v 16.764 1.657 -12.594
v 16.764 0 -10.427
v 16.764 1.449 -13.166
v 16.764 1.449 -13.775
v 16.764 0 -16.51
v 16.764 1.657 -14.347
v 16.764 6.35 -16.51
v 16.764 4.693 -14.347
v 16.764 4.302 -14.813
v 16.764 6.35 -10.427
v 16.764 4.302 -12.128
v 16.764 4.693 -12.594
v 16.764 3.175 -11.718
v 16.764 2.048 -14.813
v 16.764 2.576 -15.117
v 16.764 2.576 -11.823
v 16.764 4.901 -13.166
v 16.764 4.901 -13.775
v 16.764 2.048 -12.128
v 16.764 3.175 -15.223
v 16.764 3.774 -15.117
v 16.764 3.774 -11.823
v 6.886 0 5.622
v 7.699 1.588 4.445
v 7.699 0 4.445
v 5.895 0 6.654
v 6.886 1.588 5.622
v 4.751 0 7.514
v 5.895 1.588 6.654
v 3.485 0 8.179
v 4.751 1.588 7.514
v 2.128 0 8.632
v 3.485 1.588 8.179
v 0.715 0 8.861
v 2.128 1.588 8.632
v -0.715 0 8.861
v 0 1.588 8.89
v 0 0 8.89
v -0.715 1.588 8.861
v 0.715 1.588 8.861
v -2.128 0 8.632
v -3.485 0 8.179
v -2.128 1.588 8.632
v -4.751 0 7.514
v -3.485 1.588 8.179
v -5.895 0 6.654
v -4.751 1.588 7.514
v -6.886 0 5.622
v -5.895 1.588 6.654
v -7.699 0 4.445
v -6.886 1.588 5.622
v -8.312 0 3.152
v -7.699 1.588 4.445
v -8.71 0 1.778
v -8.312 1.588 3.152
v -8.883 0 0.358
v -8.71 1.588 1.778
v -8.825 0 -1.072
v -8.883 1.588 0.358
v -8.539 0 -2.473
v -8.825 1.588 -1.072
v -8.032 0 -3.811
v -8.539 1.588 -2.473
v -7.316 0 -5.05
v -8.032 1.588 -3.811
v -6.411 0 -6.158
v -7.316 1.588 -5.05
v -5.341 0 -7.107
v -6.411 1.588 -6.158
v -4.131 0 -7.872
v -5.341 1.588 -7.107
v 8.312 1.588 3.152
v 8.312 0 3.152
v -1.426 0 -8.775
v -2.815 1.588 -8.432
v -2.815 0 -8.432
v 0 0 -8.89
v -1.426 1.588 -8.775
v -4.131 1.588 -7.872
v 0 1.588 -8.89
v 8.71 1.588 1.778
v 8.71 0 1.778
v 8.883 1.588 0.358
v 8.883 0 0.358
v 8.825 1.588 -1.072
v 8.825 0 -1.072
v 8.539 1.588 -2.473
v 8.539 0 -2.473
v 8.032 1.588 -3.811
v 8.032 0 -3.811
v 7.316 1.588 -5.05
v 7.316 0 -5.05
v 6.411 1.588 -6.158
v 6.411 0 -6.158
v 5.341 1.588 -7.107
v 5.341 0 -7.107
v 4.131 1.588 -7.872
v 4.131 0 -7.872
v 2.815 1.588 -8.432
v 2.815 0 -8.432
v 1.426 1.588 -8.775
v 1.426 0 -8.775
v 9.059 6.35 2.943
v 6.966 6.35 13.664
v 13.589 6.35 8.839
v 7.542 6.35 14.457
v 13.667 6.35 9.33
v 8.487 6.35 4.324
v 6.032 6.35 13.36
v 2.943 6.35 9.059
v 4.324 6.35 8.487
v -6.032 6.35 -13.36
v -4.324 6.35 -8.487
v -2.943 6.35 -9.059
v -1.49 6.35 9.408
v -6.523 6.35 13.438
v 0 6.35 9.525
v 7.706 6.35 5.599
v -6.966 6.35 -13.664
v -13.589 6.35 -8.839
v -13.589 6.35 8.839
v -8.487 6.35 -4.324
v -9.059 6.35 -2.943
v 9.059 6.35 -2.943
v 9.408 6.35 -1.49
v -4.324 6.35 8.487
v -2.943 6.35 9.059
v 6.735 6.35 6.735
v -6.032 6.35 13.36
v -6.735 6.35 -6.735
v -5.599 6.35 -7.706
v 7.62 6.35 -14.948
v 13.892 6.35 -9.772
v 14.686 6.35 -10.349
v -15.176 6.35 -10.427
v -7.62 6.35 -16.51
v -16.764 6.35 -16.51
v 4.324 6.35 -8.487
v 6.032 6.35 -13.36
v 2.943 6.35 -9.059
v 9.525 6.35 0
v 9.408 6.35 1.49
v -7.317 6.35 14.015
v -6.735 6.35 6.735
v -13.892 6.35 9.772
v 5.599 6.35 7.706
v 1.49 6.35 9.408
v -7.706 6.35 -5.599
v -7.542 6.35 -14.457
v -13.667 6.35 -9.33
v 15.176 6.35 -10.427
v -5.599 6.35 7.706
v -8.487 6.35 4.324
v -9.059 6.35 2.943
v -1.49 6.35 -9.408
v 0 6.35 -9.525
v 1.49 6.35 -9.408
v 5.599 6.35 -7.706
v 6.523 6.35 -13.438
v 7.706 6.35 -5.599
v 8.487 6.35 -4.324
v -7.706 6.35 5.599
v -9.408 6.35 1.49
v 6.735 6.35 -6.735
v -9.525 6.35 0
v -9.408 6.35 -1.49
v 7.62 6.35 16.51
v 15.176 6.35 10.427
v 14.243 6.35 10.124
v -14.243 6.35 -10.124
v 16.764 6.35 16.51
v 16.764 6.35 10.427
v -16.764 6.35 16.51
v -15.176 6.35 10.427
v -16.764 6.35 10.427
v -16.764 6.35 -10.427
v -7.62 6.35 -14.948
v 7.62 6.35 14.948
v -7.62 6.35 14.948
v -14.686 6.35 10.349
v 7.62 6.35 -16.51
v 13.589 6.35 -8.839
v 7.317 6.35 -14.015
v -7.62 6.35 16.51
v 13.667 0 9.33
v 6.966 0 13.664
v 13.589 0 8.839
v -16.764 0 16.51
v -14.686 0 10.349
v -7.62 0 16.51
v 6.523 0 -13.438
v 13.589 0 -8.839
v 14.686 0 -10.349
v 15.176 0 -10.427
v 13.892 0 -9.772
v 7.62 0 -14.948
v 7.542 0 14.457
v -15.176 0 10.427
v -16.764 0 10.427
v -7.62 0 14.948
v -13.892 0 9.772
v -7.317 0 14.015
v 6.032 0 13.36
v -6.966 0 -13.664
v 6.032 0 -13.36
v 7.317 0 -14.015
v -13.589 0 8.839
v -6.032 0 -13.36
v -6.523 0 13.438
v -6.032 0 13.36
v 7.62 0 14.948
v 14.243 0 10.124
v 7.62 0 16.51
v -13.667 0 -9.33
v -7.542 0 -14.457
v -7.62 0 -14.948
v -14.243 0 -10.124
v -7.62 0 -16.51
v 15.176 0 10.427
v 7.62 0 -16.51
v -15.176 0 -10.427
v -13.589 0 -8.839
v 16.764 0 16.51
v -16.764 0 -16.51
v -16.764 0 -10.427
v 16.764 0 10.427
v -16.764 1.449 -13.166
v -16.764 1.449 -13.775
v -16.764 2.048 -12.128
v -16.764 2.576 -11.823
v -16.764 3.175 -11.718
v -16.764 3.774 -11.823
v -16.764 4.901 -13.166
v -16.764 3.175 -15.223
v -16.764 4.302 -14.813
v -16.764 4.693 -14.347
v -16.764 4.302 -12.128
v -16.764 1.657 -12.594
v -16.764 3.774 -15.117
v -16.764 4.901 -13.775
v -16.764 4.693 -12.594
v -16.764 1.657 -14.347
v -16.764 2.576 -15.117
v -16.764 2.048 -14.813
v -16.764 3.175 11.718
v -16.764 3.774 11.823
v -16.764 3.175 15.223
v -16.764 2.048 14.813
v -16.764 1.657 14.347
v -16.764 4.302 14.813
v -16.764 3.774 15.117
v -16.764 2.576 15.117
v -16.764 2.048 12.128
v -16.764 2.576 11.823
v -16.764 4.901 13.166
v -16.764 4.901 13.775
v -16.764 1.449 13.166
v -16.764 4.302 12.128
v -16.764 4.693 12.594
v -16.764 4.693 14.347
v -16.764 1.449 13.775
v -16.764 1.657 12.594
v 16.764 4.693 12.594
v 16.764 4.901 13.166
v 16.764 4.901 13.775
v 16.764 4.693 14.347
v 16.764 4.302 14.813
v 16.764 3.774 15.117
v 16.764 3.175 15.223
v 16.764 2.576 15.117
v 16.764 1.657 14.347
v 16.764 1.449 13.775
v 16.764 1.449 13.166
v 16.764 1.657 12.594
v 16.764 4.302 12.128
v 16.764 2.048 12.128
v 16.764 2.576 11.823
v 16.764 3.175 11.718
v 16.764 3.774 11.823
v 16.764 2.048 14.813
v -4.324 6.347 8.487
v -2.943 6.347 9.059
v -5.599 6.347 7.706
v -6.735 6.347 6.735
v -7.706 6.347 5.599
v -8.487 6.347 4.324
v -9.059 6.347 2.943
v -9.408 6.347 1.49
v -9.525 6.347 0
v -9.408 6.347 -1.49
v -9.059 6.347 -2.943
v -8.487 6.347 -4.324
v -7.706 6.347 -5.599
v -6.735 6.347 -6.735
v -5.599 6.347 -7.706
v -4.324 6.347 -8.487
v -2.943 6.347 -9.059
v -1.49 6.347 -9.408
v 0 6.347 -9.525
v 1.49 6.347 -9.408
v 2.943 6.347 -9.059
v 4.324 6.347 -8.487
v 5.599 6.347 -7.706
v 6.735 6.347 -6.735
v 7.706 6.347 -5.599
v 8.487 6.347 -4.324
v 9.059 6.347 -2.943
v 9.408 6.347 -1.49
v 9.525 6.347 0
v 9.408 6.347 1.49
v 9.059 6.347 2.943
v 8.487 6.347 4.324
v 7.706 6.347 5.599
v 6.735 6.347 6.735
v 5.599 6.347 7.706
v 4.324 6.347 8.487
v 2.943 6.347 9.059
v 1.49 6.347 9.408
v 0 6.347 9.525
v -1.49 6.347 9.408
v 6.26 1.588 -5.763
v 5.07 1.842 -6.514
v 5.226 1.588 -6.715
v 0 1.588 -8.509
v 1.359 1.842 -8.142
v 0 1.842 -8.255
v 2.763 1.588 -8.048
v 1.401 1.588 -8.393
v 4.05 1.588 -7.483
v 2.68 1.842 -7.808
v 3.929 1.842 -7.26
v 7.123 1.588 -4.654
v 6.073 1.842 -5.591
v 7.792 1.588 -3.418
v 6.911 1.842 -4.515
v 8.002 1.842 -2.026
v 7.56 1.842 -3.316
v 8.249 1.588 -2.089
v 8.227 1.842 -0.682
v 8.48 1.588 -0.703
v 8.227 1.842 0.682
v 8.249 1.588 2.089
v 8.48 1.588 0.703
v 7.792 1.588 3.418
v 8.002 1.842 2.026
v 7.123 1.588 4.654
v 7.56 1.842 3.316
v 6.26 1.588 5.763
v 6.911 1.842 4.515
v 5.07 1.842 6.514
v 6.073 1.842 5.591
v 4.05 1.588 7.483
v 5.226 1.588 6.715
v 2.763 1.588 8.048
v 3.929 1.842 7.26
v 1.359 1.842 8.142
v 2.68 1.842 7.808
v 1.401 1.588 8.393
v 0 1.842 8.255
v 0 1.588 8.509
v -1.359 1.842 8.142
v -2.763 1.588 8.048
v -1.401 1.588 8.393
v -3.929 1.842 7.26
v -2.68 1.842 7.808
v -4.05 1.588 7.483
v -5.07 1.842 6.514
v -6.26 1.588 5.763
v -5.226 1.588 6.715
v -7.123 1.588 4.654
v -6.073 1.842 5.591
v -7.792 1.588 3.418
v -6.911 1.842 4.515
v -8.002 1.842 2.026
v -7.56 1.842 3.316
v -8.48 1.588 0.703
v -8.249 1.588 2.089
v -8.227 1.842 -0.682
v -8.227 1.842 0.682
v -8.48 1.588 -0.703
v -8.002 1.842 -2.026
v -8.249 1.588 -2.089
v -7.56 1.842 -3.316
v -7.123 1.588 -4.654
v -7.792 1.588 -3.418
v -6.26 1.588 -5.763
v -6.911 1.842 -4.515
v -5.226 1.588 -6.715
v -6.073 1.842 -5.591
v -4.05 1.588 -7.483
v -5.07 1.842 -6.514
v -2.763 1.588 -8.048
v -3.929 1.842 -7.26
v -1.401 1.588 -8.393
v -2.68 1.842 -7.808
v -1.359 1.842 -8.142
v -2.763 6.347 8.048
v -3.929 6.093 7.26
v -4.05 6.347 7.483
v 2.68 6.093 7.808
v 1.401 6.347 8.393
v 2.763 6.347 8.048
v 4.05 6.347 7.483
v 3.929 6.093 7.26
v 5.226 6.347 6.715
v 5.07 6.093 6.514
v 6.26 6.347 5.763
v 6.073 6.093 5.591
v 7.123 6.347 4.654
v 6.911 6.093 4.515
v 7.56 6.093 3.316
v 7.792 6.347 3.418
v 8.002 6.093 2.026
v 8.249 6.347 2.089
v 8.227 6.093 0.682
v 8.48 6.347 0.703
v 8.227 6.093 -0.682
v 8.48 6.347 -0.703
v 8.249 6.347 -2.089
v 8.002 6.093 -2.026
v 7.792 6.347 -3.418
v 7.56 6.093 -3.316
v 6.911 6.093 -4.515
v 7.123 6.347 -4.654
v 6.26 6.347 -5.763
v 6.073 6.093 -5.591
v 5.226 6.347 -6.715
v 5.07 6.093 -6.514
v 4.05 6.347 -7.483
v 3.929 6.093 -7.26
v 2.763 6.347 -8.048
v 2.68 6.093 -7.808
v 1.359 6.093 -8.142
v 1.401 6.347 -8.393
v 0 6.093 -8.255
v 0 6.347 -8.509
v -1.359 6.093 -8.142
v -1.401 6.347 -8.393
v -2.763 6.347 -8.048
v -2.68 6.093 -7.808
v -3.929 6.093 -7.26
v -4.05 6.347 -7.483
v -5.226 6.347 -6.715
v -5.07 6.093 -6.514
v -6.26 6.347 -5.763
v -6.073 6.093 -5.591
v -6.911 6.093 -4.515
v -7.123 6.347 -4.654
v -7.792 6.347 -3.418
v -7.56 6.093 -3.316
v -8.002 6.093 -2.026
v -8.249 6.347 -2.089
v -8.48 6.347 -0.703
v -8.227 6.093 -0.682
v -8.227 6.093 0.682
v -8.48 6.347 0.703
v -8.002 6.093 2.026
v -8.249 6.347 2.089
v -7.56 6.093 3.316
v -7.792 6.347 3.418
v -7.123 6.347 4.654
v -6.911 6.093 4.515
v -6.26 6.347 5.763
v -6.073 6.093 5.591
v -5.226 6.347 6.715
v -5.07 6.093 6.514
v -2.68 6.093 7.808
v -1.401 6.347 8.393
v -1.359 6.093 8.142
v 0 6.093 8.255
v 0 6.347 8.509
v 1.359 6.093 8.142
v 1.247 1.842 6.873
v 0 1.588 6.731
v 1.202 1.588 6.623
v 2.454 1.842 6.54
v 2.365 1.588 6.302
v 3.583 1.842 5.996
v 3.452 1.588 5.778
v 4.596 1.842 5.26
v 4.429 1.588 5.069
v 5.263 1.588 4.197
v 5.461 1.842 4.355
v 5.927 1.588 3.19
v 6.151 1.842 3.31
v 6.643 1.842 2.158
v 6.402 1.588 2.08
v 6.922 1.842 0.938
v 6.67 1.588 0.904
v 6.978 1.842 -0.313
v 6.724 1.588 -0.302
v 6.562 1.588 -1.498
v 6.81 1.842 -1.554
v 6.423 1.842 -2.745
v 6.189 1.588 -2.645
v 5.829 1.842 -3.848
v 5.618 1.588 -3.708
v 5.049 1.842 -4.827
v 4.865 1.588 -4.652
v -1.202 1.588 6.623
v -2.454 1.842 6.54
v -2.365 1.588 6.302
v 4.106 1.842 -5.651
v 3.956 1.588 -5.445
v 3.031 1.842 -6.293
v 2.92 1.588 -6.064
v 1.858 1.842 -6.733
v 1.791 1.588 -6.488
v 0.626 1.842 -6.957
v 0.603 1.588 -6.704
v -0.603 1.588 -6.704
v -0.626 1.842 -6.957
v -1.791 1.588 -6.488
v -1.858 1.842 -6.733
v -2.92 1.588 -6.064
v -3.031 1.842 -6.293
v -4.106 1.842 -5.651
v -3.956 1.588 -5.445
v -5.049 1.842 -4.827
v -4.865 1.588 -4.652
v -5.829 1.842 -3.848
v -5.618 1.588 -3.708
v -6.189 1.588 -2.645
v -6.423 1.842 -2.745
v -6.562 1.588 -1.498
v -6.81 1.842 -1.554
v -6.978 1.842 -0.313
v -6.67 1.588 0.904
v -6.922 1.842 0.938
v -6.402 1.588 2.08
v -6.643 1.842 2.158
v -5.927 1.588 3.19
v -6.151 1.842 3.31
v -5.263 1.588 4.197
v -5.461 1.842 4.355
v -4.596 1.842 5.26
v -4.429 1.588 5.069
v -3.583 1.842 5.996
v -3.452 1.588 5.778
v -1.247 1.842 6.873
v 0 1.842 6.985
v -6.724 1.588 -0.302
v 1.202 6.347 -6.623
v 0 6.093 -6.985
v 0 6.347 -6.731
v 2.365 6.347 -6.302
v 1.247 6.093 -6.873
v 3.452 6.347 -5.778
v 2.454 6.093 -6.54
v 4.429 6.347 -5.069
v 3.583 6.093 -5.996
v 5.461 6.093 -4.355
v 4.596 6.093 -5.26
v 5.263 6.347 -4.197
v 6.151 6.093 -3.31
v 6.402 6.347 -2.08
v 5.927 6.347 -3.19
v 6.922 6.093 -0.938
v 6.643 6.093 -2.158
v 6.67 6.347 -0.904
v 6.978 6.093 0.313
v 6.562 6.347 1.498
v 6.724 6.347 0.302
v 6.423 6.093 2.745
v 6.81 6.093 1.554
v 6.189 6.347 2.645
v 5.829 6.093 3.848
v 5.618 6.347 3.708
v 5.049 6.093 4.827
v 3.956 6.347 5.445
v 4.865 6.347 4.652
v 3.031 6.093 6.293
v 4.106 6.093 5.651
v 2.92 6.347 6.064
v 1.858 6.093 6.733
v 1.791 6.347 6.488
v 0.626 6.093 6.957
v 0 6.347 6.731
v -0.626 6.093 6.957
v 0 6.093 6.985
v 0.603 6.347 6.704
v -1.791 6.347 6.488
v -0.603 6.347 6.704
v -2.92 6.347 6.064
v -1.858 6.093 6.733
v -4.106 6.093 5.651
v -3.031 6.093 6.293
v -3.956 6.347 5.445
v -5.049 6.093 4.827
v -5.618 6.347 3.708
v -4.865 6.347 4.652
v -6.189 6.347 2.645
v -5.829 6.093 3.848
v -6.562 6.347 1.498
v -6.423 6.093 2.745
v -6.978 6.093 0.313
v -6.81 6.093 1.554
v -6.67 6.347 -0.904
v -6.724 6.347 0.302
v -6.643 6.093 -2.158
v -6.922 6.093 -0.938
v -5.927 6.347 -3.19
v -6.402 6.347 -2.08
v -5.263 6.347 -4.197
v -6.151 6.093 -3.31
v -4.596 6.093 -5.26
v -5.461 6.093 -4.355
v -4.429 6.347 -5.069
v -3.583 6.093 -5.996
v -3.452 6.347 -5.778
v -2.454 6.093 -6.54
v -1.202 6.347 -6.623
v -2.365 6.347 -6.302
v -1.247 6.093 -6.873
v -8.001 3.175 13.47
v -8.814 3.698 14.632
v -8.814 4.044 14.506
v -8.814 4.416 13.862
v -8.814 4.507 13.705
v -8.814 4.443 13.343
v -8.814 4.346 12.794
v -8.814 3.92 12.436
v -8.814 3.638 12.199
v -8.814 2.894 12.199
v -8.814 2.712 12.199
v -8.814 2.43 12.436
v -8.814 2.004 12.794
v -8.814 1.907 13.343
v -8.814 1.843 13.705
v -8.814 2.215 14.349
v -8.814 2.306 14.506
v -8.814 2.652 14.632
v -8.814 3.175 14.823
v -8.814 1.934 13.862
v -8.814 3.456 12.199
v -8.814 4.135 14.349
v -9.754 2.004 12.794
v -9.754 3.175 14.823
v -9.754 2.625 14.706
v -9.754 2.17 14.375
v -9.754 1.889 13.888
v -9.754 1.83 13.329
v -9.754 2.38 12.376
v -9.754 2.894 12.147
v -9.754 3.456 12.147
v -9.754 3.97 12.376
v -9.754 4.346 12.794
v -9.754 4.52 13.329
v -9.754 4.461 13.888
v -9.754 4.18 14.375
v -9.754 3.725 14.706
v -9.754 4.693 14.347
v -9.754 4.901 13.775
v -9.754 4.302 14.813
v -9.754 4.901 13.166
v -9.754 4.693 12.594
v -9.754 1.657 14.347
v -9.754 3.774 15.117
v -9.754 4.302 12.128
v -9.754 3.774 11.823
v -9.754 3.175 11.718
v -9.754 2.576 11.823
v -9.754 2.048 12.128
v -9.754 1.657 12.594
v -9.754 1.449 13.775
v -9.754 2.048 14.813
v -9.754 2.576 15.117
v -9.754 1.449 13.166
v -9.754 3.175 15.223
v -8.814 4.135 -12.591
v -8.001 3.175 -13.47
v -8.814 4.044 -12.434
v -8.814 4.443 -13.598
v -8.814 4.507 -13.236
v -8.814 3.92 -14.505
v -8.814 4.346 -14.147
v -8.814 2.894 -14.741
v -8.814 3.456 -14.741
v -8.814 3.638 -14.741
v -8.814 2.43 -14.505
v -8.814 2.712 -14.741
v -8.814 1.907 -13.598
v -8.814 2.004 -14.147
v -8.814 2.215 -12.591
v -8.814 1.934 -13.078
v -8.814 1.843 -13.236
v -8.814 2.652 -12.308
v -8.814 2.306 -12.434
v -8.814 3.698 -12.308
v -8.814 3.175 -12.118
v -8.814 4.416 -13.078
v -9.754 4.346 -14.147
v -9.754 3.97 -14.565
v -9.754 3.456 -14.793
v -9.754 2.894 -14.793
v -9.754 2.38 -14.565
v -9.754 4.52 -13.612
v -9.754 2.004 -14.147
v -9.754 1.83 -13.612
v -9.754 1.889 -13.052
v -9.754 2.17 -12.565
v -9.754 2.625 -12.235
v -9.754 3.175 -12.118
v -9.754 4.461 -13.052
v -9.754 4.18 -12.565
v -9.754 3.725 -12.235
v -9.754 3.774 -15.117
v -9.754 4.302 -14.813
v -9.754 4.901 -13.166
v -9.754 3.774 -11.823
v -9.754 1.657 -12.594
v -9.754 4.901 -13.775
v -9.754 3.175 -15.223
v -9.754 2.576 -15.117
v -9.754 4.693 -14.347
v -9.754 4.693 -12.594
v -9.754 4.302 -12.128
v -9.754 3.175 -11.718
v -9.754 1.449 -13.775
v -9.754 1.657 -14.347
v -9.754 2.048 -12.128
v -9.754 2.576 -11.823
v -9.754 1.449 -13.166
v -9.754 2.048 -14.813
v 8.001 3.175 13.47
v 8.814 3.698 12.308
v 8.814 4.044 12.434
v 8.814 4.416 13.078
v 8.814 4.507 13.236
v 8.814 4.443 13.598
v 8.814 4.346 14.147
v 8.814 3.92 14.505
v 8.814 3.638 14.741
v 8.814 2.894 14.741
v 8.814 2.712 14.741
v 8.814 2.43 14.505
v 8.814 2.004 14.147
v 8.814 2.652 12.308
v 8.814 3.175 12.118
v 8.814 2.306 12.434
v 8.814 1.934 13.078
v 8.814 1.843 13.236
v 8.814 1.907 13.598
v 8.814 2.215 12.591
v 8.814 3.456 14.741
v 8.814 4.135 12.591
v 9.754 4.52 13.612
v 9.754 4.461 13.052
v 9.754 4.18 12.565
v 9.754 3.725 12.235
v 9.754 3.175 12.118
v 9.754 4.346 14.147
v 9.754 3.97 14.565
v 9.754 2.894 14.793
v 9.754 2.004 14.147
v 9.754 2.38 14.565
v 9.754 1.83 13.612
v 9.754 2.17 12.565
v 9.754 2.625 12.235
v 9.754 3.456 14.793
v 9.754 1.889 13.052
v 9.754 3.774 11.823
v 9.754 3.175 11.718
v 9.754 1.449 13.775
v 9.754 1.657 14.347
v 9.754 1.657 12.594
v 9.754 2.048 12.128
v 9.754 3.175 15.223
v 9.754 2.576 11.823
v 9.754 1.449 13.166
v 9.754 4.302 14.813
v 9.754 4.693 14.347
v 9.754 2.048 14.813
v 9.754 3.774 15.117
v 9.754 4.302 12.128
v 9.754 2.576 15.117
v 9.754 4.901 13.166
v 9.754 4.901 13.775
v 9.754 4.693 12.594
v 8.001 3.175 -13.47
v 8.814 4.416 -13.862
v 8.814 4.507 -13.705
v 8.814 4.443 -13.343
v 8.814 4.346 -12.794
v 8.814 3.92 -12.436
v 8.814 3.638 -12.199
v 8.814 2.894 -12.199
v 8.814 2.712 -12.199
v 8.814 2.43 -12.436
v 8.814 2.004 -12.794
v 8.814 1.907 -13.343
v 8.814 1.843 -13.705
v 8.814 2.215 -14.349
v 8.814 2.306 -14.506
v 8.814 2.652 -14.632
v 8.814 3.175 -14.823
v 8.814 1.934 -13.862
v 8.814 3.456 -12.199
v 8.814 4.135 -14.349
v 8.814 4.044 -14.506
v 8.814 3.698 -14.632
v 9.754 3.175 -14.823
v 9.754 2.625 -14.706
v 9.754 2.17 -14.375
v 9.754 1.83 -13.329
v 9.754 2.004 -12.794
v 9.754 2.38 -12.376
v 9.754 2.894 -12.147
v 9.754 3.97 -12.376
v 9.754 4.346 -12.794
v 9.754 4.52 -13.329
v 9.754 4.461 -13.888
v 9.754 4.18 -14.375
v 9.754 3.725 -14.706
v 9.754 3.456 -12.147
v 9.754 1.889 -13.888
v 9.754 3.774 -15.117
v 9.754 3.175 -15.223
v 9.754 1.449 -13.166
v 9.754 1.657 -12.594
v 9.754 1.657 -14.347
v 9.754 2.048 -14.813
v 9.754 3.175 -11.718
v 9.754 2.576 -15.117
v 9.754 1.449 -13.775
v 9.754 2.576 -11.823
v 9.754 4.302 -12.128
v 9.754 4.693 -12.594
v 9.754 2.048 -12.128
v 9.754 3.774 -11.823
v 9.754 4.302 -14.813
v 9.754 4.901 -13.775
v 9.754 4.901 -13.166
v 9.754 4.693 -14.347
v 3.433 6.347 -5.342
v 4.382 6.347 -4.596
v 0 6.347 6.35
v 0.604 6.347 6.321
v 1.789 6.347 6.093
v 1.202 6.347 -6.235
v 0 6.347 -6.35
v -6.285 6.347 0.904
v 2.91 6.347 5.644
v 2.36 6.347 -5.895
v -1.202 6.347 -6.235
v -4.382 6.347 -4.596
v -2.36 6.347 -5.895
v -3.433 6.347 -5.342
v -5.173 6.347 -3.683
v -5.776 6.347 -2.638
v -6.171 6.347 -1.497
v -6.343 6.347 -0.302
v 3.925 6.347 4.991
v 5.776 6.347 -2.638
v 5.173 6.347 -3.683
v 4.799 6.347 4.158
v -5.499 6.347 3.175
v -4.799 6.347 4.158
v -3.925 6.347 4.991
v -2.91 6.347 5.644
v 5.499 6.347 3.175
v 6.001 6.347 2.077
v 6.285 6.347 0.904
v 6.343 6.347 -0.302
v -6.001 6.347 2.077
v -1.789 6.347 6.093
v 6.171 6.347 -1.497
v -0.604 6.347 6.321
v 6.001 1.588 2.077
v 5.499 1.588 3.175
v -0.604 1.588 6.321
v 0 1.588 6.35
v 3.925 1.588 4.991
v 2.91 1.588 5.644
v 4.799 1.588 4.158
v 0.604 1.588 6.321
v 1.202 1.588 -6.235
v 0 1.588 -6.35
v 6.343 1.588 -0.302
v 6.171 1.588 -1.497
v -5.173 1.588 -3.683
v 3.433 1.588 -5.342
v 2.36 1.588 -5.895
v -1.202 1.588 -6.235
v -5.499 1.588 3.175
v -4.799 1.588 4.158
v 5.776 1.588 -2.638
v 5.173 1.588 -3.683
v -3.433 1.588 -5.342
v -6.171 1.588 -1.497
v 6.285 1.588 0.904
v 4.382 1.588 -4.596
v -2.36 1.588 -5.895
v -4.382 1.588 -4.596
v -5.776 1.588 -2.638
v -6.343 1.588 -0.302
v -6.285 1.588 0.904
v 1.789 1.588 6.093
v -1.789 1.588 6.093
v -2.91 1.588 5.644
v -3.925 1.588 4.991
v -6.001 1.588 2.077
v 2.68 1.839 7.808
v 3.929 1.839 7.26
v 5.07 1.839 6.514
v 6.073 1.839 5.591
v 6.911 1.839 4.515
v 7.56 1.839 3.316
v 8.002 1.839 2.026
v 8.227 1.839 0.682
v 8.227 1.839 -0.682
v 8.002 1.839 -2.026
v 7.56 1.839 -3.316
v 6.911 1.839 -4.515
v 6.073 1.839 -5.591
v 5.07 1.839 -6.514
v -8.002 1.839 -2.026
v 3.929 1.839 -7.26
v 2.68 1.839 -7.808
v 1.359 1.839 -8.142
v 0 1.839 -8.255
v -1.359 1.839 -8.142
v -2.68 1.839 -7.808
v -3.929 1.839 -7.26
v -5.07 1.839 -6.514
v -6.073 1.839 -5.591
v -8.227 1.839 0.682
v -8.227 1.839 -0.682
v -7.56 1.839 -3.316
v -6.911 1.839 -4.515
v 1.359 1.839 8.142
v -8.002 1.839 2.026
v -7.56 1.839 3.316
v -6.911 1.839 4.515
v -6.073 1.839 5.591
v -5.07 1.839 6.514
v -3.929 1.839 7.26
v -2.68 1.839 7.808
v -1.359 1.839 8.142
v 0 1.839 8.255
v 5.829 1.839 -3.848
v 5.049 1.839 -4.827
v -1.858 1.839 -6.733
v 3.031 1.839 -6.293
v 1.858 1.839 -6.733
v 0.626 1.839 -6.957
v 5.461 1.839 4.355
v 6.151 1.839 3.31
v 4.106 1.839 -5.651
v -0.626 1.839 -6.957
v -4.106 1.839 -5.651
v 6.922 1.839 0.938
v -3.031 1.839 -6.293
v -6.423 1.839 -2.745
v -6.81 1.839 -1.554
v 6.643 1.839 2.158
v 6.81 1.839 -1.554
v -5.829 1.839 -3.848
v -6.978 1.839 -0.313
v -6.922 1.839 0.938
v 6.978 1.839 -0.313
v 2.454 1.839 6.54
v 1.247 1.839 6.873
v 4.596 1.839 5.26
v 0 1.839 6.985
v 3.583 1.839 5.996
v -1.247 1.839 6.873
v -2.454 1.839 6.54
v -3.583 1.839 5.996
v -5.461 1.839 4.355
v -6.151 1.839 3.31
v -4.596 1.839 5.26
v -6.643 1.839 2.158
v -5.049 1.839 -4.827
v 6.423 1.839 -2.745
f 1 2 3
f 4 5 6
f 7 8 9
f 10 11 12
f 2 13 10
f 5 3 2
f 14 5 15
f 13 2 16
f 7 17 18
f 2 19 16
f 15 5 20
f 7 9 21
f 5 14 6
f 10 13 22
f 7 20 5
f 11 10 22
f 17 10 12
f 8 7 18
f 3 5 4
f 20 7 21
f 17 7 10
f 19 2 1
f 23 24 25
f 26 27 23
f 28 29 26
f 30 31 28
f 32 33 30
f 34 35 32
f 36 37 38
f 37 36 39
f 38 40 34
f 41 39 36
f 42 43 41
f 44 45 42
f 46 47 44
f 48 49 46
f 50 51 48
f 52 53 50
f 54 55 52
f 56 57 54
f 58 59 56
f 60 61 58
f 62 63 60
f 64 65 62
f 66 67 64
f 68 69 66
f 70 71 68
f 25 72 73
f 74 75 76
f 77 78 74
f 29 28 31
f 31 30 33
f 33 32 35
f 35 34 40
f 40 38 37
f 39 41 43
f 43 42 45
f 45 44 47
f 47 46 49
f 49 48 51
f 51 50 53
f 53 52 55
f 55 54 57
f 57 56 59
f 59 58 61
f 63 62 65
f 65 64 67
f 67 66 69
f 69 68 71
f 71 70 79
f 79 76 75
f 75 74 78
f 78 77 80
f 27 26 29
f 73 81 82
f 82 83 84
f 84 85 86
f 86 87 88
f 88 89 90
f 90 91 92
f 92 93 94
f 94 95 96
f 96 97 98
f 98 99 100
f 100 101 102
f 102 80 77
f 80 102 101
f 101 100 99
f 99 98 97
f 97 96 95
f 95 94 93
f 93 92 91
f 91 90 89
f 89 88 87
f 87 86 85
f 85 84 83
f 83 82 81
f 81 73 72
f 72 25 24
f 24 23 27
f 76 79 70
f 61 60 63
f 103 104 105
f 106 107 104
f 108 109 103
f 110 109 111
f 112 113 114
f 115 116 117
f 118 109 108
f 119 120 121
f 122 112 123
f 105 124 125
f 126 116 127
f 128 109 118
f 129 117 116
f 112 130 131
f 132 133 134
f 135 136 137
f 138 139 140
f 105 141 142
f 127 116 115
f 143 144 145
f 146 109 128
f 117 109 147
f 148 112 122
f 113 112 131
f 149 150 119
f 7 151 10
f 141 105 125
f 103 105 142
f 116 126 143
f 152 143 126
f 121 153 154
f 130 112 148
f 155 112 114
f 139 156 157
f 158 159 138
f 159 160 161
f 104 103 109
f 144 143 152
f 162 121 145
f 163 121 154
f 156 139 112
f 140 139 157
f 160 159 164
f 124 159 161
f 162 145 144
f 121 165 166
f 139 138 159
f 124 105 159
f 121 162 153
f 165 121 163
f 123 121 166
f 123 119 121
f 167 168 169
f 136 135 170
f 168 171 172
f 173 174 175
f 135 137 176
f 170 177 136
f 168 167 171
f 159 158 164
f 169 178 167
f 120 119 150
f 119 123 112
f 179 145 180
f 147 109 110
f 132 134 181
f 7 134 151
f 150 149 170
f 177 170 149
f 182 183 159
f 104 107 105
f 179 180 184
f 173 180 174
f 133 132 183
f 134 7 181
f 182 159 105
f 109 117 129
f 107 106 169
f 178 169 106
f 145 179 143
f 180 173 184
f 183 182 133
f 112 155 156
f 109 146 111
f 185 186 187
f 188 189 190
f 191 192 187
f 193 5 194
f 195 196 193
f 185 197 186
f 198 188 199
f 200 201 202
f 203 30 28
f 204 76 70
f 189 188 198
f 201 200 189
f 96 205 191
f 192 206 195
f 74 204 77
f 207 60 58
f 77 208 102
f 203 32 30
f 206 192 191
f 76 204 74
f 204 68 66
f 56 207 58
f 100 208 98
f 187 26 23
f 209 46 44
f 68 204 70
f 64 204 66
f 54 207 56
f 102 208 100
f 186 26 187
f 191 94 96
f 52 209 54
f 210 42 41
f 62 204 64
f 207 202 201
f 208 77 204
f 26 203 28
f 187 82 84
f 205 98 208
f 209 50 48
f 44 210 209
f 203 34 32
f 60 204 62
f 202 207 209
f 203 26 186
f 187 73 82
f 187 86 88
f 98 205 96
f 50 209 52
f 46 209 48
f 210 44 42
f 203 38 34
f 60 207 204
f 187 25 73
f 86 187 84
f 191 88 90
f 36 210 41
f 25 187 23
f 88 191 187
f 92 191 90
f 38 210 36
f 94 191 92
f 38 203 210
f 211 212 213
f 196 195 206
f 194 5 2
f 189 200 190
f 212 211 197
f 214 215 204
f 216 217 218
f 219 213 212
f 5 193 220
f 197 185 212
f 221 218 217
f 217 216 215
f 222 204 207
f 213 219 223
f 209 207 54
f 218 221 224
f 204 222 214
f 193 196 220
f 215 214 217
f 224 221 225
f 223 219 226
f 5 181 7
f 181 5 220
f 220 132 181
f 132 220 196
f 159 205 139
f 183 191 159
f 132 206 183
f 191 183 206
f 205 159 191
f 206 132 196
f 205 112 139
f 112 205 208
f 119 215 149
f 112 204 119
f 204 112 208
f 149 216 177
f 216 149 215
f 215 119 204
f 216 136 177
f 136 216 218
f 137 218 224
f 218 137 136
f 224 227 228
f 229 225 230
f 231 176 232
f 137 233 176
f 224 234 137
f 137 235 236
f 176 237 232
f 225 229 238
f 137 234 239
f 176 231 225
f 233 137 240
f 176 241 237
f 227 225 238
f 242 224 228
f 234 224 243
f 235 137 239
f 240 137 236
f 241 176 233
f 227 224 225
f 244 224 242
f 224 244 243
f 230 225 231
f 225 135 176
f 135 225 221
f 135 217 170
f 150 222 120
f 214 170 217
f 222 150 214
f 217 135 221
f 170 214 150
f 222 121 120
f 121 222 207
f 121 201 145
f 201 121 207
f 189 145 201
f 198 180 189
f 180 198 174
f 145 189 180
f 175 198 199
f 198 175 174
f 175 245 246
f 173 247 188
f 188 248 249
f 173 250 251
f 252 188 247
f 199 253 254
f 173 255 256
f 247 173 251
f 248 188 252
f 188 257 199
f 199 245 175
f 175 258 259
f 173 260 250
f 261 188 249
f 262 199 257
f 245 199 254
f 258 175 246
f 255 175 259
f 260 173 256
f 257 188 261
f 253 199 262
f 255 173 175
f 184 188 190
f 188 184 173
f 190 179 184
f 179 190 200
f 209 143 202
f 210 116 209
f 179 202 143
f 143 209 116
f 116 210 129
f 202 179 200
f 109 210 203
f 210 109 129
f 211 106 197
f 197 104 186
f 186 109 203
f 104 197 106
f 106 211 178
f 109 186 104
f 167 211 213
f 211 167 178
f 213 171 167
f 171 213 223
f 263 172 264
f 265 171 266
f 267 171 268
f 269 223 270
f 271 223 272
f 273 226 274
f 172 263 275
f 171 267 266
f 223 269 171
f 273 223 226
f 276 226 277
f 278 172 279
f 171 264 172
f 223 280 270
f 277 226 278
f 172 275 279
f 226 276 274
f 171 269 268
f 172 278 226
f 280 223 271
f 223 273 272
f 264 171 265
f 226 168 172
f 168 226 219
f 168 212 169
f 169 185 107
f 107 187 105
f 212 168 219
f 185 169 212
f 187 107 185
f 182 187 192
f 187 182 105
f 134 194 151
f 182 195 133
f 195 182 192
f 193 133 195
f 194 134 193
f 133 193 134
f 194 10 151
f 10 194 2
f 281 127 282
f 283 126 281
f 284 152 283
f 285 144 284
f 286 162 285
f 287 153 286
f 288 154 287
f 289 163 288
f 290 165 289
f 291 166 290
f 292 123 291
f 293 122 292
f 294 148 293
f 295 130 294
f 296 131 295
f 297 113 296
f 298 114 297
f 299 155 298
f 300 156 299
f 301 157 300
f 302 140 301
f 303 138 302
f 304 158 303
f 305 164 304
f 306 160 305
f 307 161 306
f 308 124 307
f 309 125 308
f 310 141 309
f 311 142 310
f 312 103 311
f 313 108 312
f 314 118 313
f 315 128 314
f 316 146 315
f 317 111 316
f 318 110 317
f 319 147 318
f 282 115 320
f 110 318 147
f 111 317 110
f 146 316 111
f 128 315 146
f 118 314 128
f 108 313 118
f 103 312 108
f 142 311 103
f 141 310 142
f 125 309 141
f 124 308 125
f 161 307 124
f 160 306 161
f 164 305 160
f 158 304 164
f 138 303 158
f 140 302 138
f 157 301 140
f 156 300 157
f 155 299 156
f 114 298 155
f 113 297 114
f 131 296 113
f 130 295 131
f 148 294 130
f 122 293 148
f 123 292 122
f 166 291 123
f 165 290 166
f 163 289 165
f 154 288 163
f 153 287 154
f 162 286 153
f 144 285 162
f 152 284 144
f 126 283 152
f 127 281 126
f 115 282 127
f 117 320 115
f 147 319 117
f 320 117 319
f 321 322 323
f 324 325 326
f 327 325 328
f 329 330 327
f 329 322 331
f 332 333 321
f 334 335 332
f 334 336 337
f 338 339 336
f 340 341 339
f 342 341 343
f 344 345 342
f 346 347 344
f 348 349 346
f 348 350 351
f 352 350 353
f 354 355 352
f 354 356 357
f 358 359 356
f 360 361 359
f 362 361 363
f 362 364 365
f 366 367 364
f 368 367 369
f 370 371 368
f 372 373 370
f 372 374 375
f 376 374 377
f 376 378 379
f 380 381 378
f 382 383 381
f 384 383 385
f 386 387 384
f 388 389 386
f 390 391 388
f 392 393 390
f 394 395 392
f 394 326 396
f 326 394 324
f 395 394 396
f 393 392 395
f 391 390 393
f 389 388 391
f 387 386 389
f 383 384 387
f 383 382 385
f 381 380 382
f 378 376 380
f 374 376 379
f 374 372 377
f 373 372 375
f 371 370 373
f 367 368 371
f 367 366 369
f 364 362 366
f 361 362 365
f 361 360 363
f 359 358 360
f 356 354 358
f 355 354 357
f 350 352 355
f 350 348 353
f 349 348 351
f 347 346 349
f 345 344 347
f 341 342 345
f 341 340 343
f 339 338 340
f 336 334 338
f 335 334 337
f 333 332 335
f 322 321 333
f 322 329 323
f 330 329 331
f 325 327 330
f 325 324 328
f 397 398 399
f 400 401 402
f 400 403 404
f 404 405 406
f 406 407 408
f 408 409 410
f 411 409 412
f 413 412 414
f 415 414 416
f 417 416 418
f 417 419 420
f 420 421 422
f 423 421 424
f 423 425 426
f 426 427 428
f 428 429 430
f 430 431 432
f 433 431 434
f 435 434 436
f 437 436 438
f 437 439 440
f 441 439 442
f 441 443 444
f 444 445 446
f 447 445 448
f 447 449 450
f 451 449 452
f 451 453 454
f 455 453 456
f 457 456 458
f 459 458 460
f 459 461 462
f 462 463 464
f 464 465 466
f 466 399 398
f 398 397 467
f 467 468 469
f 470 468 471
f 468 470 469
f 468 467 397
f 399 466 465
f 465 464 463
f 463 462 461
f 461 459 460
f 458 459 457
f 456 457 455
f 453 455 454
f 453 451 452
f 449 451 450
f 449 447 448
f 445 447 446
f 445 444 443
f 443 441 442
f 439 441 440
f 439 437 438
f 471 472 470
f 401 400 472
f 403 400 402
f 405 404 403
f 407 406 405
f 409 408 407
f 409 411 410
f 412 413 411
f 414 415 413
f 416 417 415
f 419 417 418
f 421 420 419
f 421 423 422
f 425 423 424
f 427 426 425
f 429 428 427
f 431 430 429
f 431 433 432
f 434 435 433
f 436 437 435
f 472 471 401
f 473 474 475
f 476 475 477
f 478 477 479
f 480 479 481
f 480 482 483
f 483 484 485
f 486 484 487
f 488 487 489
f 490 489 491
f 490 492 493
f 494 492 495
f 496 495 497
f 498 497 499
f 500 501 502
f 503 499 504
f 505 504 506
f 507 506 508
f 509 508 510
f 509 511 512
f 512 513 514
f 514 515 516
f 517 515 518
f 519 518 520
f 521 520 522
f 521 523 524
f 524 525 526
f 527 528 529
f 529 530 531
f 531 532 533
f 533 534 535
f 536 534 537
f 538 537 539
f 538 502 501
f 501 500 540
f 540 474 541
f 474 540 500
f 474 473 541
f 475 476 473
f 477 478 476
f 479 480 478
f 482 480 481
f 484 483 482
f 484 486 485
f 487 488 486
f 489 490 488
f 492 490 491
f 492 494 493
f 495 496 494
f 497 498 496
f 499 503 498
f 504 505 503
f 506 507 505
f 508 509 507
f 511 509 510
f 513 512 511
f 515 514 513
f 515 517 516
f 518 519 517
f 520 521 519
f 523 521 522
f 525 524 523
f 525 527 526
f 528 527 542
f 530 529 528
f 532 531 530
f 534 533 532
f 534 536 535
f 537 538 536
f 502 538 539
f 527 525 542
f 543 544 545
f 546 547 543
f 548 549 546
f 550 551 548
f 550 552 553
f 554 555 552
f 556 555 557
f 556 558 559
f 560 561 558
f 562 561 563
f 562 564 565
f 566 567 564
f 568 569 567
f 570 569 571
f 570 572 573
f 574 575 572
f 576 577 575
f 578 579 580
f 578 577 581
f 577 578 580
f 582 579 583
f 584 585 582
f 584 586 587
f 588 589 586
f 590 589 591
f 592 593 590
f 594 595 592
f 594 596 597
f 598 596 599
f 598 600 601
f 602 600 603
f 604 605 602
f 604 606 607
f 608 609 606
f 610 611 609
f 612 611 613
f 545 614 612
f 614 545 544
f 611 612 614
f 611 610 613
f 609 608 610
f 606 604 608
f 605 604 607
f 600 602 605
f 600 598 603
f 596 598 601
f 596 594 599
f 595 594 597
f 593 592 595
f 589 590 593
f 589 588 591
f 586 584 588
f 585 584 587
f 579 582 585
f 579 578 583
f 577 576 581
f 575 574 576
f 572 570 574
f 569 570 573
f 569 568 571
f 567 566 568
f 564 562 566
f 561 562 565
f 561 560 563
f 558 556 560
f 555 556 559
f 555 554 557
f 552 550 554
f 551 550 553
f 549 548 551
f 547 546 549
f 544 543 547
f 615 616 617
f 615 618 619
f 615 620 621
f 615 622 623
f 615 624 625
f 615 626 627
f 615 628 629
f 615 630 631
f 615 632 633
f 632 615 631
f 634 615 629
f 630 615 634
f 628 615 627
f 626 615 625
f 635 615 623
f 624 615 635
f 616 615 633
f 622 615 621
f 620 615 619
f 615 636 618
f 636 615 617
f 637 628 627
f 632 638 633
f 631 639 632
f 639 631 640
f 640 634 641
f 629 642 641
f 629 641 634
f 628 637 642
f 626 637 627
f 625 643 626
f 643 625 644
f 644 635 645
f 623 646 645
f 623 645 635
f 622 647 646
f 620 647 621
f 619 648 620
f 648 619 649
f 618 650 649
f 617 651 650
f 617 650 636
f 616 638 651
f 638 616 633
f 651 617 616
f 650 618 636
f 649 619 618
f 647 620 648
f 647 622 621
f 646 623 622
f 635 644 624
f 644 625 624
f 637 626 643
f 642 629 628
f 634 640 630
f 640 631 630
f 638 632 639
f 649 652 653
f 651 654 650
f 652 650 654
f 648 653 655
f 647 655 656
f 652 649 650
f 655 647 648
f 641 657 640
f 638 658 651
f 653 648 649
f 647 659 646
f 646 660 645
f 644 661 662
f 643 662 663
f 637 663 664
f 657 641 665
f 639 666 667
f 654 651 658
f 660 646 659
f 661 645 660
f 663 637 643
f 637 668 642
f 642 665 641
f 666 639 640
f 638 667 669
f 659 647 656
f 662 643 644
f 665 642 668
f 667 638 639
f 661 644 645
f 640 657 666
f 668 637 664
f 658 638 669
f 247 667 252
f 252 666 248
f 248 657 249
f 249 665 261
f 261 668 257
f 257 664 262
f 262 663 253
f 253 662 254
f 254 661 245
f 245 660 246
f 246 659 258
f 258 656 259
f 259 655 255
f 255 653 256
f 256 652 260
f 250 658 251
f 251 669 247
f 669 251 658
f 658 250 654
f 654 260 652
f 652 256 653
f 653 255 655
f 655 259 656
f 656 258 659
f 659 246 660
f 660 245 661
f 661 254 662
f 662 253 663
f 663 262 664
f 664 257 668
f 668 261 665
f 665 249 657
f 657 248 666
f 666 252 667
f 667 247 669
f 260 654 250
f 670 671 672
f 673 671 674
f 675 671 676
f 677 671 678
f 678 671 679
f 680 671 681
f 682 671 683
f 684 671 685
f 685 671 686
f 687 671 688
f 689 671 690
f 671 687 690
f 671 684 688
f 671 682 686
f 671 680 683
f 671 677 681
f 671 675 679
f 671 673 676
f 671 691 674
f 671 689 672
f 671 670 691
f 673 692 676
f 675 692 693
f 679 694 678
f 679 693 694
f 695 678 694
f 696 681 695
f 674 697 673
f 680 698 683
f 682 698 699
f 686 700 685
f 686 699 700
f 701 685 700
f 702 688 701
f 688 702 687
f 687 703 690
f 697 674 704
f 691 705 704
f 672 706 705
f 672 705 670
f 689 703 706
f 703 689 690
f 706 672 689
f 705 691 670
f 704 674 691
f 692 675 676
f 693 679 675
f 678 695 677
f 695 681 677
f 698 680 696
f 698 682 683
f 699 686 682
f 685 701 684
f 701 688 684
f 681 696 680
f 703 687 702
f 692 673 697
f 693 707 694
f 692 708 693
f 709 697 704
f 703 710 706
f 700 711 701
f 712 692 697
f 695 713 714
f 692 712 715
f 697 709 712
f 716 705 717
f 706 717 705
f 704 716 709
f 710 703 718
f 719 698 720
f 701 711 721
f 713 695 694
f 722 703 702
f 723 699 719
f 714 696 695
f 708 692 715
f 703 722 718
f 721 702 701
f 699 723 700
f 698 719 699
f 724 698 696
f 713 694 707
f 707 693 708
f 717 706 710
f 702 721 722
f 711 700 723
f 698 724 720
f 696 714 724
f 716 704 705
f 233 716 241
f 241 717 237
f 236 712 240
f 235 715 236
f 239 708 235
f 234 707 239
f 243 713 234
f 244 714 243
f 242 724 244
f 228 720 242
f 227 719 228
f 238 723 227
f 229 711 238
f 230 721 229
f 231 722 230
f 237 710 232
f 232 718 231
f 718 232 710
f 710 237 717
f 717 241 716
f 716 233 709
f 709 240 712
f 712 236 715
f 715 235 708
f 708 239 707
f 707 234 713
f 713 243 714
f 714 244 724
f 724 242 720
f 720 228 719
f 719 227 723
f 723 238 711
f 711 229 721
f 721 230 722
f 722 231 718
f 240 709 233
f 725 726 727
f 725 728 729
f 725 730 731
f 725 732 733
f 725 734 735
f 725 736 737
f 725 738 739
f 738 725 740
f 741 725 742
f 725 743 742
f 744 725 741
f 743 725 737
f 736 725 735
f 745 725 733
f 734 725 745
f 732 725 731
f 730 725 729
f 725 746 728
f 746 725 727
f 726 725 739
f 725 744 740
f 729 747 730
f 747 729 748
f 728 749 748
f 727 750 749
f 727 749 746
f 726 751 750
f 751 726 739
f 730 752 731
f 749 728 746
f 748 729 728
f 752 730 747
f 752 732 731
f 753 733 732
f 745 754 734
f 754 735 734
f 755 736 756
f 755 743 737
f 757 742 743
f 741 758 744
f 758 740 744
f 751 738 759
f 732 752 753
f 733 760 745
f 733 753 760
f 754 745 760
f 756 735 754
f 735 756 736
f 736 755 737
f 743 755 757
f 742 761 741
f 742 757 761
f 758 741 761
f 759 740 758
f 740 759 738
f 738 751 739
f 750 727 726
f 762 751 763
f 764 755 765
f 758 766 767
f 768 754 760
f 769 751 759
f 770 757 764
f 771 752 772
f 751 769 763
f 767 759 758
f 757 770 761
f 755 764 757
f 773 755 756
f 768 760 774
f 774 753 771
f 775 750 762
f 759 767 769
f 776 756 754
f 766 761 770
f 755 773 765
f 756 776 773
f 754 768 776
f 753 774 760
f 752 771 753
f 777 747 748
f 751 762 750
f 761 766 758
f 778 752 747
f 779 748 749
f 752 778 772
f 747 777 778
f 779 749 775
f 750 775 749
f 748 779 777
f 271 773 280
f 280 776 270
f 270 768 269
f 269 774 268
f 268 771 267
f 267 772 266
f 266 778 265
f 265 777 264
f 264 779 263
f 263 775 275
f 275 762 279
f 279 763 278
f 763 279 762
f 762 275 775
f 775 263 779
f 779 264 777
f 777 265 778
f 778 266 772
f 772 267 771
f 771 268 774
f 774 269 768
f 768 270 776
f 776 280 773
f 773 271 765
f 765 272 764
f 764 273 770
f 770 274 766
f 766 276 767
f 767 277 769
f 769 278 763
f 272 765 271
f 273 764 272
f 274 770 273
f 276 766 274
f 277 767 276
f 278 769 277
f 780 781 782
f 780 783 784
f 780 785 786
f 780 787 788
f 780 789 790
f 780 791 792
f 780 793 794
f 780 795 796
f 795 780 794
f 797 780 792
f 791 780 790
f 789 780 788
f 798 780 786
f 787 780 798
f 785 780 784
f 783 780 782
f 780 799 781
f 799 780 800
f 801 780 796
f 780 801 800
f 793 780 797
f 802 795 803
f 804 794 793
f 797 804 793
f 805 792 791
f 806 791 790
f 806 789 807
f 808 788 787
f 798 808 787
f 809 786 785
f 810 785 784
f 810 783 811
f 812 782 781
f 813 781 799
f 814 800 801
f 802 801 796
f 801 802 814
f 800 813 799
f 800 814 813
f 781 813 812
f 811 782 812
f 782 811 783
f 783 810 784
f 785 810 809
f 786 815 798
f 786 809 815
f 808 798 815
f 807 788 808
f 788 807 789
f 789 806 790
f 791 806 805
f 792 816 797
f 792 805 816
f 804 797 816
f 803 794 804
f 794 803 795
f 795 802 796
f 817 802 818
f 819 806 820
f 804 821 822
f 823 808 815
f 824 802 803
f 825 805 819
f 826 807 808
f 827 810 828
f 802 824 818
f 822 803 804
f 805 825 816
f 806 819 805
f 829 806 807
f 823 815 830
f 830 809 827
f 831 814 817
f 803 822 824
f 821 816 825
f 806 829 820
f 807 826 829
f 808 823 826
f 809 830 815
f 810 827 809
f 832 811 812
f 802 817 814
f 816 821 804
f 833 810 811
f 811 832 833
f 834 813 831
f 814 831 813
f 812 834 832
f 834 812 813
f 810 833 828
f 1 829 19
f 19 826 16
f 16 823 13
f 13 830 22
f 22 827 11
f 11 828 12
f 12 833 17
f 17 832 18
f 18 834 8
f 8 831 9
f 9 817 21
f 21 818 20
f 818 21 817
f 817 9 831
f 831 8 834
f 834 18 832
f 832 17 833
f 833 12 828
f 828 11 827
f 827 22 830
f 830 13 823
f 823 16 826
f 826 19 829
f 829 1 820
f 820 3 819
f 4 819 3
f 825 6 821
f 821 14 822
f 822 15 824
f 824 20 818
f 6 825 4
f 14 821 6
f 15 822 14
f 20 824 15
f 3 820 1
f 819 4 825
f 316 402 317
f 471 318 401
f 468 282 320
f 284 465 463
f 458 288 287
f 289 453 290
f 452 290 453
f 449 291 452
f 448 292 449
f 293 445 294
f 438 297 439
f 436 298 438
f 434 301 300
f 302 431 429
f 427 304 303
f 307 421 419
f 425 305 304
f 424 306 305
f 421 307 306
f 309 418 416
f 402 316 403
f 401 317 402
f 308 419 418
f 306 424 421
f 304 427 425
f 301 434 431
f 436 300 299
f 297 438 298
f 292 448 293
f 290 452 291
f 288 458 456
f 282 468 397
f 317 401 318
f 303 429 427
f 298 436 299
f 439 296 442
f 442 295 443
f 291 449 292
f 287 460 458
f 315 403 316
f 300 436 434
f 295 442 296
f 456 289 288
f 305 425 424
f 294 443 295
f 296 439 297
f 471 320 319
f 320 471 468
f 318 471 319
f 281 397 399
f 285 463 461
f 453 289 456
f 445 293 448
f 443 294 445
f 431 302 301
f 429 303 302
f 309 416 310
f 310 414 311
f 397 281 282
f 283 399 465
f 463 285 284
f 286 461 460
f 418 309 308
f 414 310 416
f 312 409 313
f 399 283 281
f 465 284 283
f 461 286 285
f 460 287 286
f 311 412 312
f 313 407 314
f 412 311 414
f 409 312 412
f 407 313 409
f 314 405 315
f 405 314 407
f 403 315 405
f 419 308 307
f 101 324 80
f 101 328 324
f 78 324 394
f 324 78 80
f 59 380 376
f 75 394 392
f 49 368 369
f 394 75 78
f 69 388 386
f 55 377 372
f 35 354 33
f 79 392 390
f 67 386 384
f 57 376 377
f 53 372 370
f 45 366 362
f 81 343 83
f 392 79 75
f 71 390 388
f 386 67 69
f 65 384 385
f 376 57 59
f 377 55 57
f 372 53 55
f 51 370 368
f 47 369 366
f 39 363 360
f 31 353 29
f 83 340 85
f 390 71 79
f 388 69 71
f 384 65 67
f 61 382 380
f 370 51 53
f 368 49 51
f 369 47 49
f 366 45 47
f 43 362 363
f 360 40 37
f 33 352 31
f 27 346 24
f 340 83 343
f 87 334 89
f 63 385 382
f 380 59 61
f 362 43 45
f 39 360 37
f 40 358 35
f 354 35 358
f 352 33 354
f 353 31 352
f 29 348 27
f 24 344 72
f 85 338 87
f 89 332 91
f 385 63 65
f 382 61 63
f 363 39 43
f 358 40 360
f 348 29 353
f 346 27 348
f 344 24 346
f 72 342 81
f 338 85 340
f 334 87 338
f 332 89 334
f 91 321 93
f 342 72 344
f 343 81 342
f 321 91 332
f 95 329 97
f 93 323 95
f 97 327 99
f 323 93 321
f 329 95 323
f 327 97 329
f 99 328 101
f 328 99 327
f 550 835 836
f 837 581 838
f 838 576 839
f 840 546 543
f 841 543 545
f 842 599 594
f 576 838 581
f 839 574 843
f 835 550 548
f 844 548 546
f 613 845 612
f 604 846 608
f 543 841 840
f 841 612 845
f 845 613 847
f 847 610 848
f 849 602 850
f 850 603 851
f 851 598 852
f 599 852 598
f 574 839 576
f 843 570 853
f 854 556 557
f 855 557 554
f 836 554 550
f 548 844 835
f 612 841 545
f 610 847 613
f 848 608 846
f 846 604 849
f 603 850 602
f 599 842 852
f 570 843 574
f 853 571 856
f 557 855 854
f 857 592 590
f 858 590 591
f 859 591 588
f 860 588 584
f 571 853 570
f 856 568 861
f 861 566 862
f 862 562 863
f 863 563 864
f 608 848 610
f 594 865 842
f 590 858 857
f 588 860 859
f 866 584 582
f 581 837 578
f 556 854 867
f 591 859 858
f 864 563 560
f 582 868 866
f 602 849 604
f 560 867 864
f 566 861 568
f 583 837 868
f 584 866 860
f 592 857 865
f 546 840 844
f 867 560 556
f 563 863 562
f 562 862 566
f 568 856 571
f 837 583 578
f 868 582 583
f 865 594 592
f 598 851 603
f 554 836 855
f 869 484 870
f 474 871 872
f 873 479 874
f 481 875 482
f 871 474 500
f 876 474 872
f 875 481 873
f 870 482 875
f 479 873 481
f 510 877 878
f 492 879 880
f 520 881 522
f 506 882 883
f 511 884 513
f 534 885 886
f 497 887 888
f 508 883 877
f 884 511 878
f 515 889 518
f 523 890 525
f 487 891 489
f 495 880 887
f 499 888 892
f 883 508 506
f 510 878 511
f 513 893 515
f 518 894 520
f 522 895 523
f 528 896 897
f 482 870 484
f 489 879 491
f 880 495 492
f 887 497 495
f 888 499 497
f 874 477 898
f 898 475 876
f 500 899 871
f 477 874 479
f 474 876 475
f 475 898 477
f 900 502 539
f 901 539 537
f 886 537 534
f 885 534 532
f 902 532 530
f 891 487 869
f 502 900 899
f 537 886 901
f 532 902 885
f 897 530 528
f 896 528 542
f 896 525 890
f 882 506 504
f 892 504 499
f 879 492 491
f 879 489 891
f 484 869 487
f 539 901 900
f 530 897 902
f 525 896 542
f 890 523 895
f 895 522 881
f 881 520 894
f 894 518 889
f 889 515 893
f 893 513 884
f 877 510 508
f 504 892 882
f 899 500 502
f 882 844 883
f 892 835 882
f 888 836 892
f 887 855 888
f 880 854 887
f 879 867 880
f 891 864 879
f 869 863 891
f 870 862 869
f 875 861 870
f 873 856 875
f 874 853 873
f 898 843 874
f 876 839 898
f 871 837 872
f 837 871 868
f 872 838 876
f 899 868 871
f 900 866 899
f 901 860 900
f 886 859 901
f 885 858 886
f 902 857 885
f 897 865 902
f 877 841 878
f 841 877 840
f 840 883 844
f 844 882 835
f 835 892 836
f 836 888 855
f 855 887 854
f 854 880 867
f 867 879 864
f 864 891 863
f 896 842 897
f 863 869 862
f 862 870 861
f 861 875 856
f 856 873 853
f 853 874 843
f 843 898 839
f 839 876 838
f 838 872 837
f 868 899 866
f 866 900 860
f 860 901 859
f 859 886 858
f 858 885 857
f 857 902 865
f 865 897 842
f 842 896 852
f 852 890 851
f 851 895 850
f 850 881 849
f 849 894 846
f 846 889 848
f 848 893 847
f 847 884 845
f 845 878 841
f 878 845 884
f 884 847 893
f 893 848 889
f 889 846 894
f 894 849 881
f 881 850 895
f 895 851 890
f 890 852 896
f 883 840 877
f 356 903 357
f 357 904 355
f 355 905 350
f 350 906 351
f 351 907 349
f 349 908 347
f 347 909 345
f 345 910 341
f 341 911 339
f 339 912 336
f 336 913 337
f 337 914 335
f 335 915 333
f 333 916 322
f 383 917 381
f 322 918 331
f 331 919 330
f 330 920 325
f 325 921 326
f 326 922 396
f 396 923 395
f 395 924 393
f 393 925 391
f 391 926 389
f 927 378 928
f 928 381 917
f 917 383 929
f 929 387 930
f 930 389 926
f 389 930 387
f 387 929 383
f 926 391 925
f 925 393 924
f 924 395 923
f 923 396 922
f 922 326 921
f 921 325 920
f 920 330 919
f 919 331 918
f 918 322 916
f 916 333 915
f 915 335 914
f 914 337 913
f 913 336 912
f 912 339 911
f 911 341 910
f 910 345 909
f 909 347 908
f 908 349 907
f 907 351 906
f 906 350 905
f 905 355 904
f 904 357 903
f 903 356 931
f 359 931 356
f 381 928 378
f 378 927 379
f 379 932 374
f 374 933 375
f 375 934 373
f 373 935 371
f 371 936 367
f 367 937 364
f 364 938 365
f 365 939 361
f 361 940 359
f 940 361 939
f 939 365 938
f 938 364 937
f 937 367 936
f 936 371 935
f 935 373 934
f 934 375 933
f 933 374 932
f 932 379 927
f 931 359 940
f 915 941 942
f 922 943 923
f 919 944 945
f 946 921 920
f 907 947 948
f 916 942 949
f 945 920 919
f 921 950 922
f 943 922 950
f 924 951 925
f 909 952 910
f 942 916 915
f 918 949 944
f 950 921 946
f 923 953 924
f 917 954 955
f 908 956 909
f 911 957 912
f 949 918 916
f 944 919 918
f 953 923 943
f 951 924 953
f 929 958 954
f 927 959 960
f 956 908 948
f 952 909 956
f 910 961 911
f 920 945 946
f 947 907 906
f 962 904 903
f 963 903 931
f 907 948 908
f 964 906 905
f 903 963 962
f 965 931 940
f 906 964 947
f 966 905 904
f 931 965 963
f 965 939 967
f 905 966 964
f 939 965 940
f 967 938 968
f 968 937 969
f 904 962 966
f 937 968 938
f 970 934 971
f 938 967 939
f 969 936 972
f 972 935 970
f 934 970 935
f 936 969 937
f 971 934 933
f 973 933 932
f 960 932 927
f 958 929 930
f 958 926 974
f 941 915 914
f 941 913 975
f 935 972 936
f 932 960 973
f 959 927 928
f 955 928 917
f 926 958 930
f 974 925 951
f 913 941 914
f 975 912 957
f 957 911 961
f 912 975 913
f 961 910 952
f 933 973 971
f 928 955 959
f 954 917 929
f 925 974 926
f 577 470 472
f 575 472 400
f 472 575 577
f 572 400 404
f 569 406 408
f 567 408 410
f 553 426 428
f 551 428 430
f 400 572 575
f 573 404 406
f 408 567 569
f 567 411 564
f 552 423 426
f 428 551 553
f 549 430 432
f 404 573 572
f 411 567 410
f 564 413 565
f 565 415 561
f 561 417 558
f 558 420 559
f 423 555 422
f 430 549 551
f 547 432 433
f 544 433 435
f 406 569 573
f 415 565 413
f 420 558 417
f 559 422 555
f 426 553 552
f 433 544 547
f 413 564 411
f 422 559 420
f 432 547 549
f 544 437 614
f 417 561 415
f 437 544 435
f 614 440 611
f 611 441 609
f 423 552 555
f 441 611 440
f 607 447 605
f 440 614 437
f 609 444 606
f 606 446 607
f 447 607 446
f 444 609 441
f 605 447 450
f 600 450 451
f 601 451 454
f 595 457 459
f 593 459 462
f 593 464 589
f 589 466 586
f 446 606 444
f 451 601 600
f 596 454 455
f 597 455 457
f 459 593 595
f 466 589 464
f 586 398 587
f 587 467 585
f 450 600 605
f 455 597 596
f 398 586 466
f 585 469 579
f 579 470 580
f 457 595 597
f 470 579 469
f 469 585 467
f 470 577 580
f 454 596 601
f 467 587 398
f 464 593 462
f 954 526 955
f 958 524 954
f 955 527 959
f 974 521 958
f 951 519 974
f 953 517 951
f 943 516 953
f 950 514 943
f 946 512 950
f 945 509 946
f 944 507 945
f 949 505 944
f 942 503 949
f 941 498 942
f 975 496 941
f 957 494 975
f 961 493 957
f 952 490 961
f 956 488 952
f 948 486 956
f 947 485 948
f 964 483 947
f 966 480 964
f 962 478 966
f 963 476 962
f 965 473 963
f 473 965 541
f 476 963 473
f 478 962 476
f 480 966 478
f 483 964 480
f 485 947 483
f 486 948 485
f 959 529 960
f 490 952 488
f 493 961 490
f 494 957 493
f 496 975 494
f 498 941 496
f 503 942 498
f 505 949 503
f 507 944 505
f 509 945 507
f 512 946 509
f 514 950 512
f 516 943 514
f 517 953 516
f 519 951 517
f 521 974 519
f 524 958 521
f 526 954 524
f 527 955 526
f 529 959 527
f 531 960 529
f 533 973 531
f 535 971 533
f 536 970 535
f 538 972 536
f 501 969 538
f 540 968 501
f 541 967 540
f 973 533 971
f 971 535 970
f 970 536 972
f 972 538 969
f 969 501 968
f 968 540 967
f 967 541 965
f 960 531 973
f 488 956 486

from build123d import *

# Parameters (mm, degrees)
SKETCH1_R                      = 8.89
BOSS_EXTRUDE1_DEPTH            = 6.35
SKETCH2_R                      = 9.525
CUT_EXTRUDE1_DEPTH             = 4.7625
SKETCH3_R                      = 9.525
SKETCH3_R_2                    = 8.255
BOSS_EXTRUDE2_DEPTH            = 4.75996
CHAMFER1_SIZE                  = 0.254
SKETCH4_R                      = 6.985
SKETCH4_R_2                    = 6.35
BOSS_EXTRUDE3_DEPTH            = 4.75996
CHAMFER2_SIZE                  = 0.254
SKETCH5_R                      = 8.255
SKETCH5_R_2                    = 6.985
BOSS_EXTRUDE4_DEPTH            = 4.2545
F_6_32_TAPPED_HOLE1_AT_2_COUNT = 2
F_6_32_TAPPED_HOLE1_AT_2_PITCH = 26.940768363


with BuildPart() as part:
    # Sketch1 → Boss-Extrude1 (new body)
    with BuildSketch(Plane(origin=(0, 0, 0), x_dir=(1, 0, 0), z_dir=(0, 1, 0))):
        with BuildLine():
            Line((-16.764, -16.51), (-7.62, -16.51))
            Line((-7.62, -16.51), (-7.62, -14.9479))
            ThreePointArc((-7.62, -14.9479), (-7.155032015, -13.825367985), (-6.0325, -13.3604))
            Line((-6.0325, -13.3604), (6.0325, -13.3604))
            ThreePointArc((6.0325, -13.3604), (7.155032015, -13.825367985), (7.62, -14.9479))
            Line((7.62, -14.9479), (7.62, -16.51))
            Line((7.62, -16.51), (16.764, -16.51))
            Line((16.764, -16.51), (16.764, -10.4267))
            Line((16.764, -10.4267), (15.1765, -10.4267))
            ThreePointArc((15.1765, -10.4267), (14.053967985, -9.961732015), (13.589, -8.8392))
            Line((13.589, -8.8392), (13.589, 8.8392))
            ThreePointArc((13.589, 8.8392), (14.053967985, 9.961732015), (15.1765, 10.4267))
            Line((15.1765, 10.4267), (16.764, 10.4267))
            Line((16.764, 10.4267), (16.764, 16.51))
            Line((16.764, 16.51), (7.62, 16.51))
            Line((7.62, 16.51), (7.62, 14.9479))
            ThreePointArc((7.62, 14.9479), (7.155032015, 13.825367985), (6.0325, 13.3604))
            Line((6.0325, 13.3604), (-6.0325, 13.3604))
            ThreePointArc((-6.0325, 13.3604), (-7.155032015, 13.825367985), (-7.62, 14.9479))
            Line((-7.62, 14.9479), (-7.62, 16.51))
            Line((-7.62, 16.51), (-16.764, 16.51))
            Line((-16.764, 16.51), (-16.764, 10.4267))
            Line((-16.764, 10.4267), (-15.1765, 10.4267))
            ThreePointArc((-15.1765, 10.4267), (-14.053967985, 9.961732015), (-13.589, 8.8392))
            Line((-13.589, 8.8392), (-13.589, -8.8392))
            ThreePointArc((-13.589, -8.8392), (-14.053967985, -9.961732015), (-15.1765, -10.4267))
            Line((-15.1765, -10.4267), (-16.764, -10.4267))
            Line((-16.764, -10.4267), (-16.764, -16.51))
        make_face()
        Circle(SKETCH1_R, mode=Mode.SUBTRACT)
    extrude(amount=BOSS_EXTRUDE1_DEPTH)

    # Sketch2 → Cut-Extrude1 (cut)
    with BuildSketch(Plane(origin=(0, 6.35, 0), x_dir=(1, 0, 0), z_dir=(0, 1, 0))):
        Circle(SKETCH2_R)
    extrude(amount=-CUT_EXTRUDE1_DEPTH, mode=Mode.SUBTRACT)

    # Sketch3 → Boss-Extrude2 (add)
    with BuildSketch(Plane(origin=(0, 1.5875, 0), x_dir=(-1, 0, 0), z_dir=(0, 1, 0))):
        Circle(SKETCH3_R)
        Circle(SKETCH3_R_2, mode=Mode.SUBTRACT)
    extrude(amount=BOSS_EXTRUDE2_DEPTH)

    # Chamfer1
    chamfer1_edges = [part.edges().sort_by_distance(p)[0] for p in [
        (8.255, 1.5875, 0),
        (8.255, 6.34746, 0),
    ]]
    chamfer(chamfer1_edges, length=CHAMFER1_SIZE)



with BuildPart() as body_2:
    # Sketch4 → Boss-Extrude3 (new body)
    with BuildSketch(Plane(origin=(0, 1.5875, 0), x_dir=(-1, 0, 0), z_dir=(0, 1, 0))):
        Circle(SKETCH4_R)
        Circle(SKETCH4_R_2, mode=Mode.SUBTRACT)
    extrude(amount=BOSS_EXTRUDE3_DEPTH)

    # Chamfer2
    chamfer2_edges = [body_2.edges().sort_by_distance(p)[0] for p in [
        (6.985, 1.5875, 0),
        (6.985, 6.34746, 0),
    ]]
    chamfer(chamfer2_edges, length=CHAMFER2_SIZE)


with BuildPart() as part_1:
    add(part.part)

    add(body_2.part)  # Boss-Extrude4 merges body 2
    # Sketch5 → Boss-Extrude4 (add)
    with BuildSketch(Plane(origin=(0, 6.09346, 0), x_dir=(-1, 0, 0), z_dir=(0, 1, 0))):
        Circle(SKETCH5_R)
        Circle(SKETCH5_R_2, mode=Mode.SUBTRACT)
    extrude(amount=-BOSS_EXTRUDE4_DEPTH)

    # Sketch8 → #6-32 Tapped Hole1 (revolve, cut)
    with BuildSketch(Plane(origin=(-16.764, 3.175, -13.470384182), x_dir=(0, 0, 1), z_dir=(0, 1, 0))):
        Polygon((0, 0), (0, 8.76289403), (1.35255, 7.9502), (1.35255, 7.0104), (1.7526, 7.0104), (1.7526, 0), align=None)
    f_6_32_tapped_hole1 = revolve(axis=Axis((-23.114, 3.175, -13.470384182), (1, 0, 0)), mode=Mode.SUBTRACT)

    # #6-32 Tapped Hole1 at 2: #6-32 Tapped Hole1 ×2
    with Locations(*[(0, 0, i * F_6_32_TAPPED_HOLE1_AT_2_PITCH) for i in range(1, F_6_32_TAPPED_HOLE1_AT_2_COUNT)]):
        add(f_6_32_tapped_hole1, mode=Mode.SUBTRACT)

    # Mirror1: #6-32 Tapped Hole1 across plane
    add(f_6_32_tapped_hole1.mirror(Plane(origin=(0, 0, 0), x_dir=(0, 0, 1), z_dir=(1, 0, 0))), mode=Mode.SUBTRACT)

    # Mirror1 copy 1 sketch → Mirror1 copy 1 (revolve, cut)
    with BuildSketch(Plane(origin=(16.764, 3.175, 13.470384182), x_dir=(0, 0, 1), z_dir=(0, 1, 0))):
        Polygon((0, 0), (0, -8.76289403), (1.35255, -7.9502), (1.35255, -7.0104), (1.7526, -7.0104), (1.7526, 0), align=None)
    revolve(axis=Axis((23.114, 3.175, 13.470384182), (1, 0, 0)), mode=Mode.SUBTRACT)


solid = part_1.part
